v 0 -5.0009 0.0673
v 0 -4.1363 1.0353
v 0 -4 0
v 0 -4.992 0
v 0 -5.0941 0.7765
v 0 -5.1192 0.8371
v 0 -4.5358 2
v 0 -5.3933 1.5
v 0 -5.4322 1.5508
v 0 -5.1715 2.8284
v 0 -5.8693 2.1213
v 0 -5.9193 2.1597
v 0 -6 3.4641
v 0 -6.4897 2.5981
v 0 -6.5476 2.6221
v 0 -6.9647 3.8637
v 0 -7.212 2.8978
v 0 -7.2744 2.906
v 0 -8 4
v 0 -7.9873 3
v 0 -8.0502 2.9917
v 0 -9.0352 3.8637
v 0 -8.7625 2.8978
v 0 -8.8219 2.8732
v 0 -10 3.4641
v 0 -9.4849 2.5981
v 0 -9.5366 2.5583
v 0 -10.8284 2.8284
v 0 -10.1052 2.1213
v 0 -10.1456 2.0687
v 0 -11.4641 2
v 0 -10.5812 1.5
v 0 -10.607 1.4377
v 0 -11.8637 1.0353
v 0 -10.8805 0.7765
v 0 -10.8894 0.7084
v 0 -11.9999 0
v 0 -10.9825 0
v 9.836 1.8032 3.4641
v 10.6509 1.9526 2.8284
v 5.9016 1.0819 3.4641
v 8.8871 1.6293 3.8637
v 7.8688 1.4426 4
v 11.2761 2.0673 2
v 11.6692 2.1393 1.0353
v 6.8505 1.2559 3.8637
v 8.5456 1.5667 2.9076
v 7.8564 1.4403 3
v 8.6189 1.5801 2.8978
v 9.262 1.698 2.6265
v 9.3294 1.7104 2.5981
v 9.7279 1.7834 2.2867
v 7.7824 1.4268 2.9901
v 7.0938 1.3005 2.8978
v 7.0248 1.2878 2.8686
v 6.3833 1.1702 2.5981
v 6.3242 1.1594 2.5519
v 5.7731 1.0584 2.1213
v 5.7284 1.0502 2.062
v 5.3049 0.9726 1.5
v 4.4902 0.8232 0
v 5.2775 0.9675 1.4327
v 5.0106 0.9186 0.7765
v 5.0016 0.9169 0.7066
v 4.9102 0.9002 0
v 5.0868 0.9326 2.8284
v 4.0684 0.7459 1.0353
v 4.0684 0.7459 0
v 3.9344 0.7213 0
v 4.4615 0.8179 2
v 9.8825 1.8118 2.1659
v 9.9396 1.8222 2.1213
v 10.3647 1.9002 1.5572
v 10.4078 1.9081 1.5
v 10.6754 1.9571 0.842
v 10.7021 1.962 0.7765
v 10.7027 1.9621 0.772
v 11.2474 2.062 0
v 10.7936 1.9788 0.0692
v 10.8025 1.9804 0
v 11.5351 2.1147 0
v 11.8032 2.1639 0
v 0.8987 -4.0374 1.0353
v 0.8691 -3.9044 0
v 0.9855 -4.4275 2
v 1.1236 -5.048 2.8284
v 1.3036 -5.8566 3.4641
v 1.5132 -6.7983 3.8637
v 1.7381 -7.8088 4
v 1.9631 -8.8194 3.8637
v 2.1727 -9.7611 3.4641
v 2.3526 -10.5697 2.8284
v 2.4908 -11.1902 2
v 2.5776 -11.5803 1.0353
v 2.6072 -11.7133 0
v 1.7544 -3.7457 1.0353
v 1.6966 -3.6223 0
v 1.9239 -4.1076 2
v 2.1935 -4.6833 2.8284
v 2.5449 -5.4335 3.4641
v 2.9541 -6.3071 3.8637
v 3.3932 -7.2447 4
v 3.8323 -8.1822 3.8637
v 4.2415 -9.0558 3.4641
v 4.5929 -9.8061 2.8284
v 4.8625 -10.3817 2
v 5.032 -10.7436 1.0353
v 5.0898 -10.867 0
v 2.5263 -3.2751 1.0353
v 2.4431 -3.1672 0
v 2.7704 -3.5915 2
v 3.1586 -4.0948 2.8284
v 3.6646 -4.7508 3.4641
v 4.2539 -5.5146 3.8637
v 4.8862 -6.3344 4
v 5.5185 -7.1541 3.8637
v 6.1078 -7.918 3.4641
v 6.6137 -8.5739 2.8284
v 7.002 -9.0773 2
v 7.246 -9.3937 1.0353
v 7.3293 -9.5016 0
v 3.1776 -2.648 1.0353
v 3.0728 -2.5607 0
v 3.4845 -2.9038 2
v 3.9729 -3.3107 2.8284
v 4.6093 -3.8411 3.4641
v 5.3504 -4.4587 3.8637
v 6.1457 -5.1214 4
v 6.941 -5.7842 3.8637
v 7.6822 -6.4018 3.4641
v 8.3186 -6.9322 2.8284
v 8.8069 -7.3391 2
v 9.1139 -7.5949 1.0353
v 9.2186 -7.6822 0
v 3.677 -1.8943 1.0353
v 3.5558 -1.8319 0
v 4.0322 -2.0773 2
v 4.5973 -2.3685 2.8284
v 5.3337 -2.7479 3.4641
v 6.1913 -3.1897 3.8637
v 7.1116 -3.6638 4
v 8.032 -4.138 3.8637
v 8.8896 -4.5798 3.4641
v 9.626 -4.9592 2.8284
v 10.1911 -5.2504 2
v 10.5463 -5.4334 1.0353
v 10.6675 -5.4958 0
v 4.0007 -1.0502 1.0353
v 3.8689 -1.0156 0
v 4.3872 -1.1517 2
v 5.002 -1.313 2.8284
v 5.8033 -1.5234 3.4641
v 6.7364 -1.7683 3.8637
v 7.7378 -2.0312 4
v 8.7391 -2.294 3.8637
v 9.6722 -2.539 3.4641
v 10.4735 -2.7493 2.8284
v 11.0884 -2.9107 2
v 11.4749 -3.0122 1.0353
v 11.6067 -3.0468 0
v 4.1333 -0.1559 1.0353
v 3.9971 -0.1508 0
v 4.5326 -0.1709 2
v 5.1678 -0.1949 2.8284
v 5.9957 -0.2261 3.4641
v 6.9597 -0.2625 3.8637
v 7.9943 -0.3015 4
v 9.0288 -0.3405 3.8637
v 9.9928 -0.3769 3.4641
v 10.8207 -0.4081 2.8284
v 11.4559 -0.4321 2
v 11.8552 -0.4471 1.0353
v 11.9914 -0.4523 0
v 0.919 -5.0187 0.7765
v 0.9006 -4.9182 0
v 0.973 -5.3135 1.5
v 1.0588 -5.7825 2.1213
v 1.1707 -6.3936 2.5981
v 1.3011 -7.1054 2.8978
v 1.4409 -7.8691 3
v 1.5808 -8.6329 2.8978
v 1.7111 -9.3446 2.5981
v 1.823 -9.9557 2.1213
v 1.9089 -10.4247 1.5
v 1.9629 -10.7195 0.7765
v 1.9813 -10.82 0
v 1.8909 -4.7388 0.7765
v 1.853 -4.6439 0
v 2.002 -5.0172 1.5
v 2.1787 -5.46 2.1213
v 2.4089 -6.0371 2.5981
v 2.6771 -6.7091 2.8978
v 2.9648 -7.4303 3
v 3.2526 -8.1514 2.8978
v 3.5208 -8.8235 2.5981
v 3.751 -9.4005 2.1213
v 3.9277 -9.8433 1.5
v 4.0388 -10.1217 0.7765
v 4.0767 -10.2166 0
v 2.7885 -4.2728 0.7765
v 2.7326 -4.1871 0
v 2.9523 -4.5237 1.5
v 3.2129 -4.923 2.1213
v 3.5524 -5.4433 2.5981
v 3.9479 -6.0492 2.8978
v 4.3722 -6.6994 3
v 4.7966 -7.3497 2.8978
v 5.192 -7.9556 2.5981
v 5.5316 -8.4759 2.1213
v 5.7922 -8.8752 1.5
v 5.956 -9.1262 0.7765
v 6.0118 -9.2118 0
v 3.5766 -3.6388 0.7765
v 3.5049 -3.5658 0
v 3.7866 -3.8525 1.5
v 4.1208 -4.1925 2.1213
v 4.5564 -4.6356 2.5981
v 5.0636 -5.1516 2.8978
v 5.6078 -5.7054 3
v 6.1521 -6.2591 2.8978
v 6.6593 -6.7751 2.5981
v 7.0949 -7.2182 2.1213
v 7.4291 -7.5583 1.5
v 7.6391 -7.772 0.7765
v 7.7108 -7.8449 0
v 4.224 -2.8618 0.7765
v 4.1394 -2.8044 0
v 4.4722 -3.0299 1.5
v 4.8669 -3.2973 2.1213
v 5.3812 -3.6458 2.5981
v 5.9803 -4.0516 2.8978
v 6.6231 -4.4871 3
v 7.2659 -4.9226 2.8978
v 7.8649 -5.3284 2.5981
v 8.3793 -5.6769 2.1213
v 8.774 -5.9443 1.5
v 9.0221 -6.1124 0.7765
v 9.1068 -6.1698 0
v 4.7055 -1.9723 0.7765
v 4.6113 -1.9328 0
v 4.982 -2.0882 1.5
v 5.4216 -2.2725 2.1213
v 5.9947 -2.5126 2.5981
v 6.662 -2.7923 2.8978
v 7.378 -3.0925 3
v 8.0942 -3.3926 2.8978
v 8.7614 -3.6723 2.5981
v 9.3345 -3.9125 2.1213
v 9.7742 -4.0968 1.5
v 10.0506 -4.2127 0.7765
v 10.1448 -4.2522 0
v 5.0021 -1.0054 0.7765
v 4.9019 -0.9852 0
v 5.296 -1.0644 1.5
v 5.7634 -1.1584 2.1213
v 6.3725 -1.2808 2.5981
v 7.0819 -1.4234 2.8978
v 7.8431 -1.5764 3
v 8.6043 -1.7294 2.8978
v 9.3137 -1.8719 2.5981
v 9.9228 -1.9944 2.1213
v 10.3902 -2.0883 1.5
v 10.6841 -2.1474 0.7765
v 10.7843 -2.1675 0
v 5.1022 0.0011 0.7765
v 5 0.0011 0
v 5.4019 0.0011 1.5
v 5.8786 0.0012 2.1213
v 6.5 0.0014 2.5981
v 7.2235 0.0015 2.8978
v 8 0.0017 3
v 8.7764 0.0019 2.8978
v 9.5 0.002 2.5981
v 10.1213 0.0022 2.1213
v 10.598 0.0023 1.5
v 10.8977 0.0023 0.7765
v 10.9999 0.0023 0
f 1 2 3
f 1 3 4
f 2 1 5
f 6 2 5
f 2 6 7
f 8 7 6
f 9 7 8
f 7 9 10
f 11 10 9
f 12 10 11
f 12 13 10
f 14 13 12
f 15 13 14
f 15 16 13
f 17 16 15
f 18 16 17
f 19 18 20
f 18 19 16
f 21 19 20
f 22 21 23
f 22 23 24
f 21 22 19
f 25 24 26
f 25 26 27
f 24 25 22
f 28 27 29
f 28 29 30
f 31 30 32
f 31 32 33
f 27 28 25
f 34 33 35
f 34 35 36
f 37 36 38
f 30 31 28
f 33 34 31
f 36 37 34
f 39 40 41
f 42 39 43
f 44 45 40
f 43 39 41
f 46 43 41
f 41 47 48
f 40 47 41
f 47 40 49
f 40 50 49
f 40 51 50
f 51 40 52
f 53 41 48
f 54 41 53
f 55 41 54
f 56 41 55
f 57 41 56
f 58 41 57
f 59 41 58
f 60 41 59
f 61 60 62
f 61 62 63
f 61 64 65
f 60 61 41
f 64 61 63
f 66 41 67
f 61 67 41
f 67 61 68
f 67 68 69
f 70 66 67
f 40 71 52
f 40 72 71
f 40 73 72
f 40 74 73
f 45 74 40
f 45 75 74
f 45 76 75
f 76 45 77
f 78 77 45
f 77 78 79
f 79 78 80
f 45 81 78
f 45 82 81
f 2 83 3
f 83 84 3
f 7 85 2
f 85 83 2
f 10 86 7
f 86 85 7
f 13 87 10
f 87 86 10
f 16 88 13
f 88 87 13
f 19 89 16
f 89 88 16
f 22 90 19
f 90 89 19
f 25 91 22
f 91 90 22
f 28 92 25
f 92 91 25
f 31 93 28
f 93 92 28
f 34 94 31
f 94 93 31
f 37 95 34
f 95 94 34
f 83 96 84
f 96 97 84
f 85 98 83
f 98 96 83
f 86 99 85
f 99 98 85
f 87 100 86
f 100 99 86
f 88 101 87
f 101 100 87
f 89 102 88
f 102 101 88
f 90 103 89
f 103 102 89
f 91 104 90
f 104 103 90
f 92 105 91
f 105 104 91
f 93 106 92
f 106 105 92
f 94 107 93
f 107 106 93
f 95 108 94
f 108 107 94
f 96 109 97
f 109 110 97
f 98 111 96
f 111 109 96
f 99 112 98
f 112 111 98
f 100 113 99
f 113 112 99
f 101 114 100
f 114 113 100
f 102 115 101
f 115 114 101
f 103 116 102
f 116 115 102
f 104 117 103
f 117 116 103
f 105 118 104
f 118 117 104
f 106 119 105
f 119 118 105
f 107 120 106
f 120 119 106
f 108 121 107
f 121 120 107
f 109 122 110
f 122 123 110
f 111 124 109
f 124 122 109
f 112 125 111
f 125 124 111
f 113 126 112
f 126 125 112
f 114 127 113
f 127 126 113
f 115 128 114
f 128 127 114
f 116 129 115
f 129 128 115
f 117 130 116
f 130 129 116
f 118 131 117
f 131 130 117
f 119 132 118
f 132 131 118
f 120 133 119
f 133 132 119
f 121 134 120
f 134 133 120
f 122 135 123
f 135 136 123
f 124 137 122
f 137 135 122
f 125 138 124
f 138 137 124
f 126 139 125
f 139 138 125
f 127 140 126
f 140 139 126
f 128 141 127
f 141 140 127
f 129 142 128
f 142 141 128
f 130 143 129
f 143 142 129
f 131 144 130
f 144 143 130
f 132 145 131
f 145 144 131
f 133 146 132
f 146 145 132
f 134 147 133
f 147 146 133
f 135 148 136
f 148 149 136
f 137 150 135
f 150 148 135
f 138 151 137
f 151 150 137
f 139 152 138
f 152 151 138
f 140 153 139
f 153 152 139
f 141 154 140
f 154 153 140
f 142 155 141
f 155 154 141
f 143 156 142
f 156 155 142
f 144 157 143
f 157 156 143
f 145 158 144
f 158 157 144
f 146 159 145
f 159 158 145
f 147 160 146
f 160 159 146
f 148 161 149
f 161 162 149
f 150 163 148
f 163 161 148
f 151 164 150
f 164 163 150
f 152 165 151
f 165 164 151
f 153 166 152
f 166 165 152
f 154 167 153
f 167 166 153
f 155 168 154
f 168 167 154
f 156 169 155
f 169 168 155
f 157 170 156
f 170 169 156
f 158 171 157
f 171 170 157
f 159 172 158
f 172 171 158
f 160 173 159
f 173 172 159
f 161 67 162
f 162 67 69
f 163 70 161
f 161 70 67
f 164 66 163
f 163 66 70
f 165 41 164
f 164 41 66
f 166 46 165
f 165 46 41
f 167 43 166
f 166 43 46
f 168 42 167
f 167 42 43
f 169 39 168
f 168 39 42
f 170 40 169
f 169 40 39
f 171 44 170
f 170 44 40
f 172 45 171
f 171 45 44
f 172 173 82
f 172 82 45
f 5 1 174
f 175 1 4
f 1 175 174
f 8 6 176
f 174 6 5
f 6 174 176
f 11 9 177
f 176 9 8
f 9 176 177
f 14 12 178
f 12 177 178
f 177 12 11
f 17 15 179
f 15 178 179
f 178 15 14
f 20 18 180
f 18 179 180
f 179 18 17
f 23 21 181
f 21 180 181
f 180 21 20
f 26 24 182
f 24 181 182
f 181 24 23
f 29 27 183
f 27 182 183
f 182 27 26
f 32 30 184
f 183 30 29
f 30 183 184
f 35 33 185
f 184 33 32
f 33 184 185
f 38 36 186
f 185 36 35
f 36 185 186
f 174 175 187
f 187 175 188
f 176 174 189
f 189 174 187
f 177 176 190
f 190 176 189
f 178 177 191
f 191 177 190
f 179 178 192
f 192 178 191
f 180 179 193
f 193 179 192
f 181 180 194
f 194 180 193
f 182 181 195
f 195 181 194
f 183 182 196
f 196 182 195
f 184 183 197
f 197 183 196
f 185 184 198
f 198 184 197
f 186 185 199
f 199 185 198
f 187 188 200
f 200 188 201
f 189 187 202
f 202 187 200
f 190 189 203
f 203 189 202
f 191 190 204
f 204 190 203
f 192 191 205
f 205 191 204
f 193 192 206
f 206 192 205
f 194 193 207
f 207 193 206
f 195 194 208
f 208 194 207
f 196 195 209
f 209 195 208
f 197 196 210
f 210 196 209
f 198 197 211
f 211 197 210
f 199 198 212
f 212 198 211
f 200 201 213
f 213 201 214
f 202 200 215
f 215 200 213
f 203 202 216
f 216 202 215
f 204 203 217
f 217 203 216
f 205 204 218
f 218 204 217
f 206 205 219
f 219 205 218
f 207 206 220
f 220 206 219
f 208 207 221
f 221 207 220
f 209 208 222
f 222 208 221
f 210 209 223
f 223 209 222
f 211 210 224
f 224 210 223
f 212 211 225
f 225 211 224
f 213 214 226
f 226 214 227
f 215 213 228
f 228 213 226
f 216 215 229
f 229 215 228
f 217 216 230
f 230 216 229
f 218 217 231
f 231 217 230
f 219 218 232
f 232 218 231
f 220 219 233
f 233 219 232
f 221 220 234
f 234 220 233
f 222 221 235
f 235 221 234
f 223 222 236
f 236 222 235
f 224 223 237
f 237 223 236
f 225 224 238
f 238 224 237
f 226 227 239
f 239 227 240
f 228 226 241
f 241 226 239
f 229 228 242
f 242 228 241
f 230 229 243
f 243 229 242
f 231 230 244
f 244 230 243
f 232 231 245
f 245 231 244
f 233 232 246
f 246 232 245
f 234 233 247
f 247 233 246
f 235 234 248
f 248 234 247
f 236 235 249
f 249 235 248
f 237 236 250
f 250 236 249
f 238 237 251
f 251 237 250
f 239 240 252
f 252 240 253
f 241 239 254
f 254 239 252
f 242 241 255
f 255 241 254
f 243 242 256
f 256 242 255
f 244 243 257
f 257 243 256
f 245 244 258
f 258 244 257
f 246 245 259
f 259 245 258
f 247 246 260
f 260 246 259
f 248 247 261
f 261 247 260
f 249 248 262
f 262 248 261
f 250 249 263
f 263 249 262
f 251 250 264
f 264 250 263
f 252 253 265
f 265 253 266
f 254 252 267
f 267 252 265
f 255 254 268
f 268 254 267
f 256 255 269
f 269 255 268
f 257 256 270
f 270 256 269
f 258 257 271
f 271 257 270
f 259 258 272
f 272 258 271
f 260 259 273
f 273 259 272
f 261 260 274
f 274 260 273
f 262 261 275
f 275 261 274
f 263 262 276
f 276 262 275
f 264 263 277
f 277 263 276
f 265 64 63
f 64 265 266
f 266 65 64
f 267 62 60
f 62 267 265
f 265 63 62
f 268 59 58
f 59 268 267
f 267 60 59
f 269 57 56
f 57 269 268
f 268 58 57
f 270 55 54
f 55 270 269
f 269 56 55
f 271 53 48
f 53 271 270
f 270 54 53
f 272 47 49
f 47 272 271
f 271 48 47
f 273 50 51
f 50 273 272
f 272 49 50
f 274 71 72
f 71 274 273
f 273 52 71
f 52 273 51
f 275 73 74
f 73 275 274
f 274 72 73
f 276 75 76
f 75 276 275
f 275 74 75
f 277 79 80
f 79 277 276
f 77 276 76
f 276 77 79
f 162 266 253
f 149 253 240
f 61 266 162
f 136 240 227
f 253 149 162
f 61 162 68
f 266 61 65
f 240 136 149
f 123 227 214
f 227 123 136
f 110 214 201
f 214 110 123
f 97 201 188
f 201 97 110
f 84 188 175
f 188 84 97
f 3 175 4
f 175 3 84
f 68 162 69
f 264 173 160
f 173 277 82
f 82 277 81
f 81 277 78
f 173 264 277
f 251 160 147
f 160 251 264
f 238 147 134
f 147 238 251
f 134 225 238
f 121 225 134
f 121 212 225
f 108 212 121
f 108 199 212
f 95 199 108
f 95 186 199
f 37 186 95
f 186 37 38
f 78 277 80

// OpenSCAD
// file: ../build_environments.scad
// build_environments.scad: modules to build level sections
//

module pool(diameter=10.0, wall_height=2.0, step_width=3.0, connections=[])
{
    difference() {
        union() {
        difference() {
            cylinder(h=0.5,r1=diameter+step_width,r2=diameter+step_width,$fn=48);
            translate([0,0,-0.1])
                cylinder(h=0.7,r1=diameter,r2=diameter,$fn=48);
        }
        difference() {
            cylinder(h=wall_height,r1=diameter+step_width+1.0,r2=diameter+step_width+1.0,$fn=48);
            translate([0,0,-0.1])
                cylinder(h=wall_height+0.2,r1=diameter+step_width,r2=diameter+step_width,$fn=48);
        }
        }
    
        for (c = connections)
        {
            rotate([0,90,0]) {
                angle = atan2(c[1],c[0]);
                rotate([-angle,0,0]) {
                    cylinder(h=diameter+5.0,r1=c[2],r2=c[2],$fn=48);
                }
            }
        }
    }
}

module straight(length=10.0, width=2.0, dy1=0.0, dy2=0.0, dz=0.0)
{
    dims = [0, 0, 0, 0, 0, (dz/length)];
    matrix = [
        [ 1, dims[0], dims[1], 0 ],
        [ dims[2], 1, dims[4], 0 ],
        [ dims[5], dims[3], 1, 0 ],
        [ 0, 0, 0, 1 ]
    ];
    multmatrix(matrix)
    difference() {
        translate([dy1,0,0])
        union() {
            rotate([0,90,0]) {
                difference() {
                    cylinder(h=(length-dy1-dy2),r1=width+1.0,r2=width+1.0,$fn=24);
                    translate([0,0,-0.1])
                        cylinder(h=(length-dy1-dy2+0.2),r1=width,r2=width,$fn=24);
                }
                difference() {
                    cylinder(h=1.0,r1=width+2.0,r2=width+2.0,$fn=24);
                    translate([0,0,-0.1])
                        cylinder(h=1.2,r1=width,r2=width,$fn=24);
                }
                translate([0,0,(length-dy1-dy2)-1.0]) {
                    difference() {
                        cylinder(h=1.0,r1=width+2.0,r2=width+2.0,$fn=24);
                        translate([0,0,-0.1])
                            cylinder(h=1.2,r1=width,r2=width,$fn=24);
                    }
                }
            }
        }
        translate([0,0,-(2*width+4.0)/2])
            cube([3*length,3*length,2*width+4.0],center=true);
    }
}

module curve(p0=[0,0], center=[0,0], dir=1, angle=0.0, width=2.0)
{
    radius = sqrt((p0[0]-center[0])*(p0[0]-center[0]) + (p0[1]-center[1])*(p0[1]-center[1]));
    if (dir == 0) {
        difference() {
            rotate([0,0,-90])
            difference() {
                rotate_extrude(angle = angle, convexity = 10, $fn=32)
                    translate([radius, 0, 0])
                        circle(r = width+1.0,$fn=24);
                rotate([0,0,-1.0])
                    rotate_extrude(angle = angle+2.0, convexity = 10, $fn=32)
                        translate([radius, 0, 0])
                            circle(r = width,$fn=24);
            }
            translate([0,0,-(2*width+4.0)/2])
                cube([5*radius,5*radius,2*width+4.0],center=true);
        }
    }
    else {
        difference() {
            rotate([0,0,90])
            difference() {
                rotate_extrude(angle = -angle, convexity = 10, $fn=32)
                    translate([radius, 0, 0])
                        circle(r = width+1.0,$fn=24);
                rotate([0,0,1.0])
                    rotate_extrude(angle = -angle-2.0, convexity = 10, $fn=32)
                        translate([radius, 0, 0])
                            circle(r = width,$fn=24);
            }
            translate([0,0,-(2*width+4.0)/2])
                cube([5*radius,5*radius,2*width+4.0],center=true);
        }
    }

}

// test pool
//pool(diameter=12.0000, wall_height=3.0000, step_width=3.0000, connections=[[0.0000,-26.0000,2.0000], [23.6074,0.0000,2.0000]]);

// test straight, slope
//straight(length=26.0000, width=2.0000, dy1=11.8322, dy2=6.7082, dz=0.0000);
//straight(length=29.1549, width=12.0000, dy1=0.0000, dy2=0.0000, dz=-15.0000);

// test curve
//curve(p0=[23.6074, 0.0000], center=[23.6074, 5.0000], dir=0, angle=60.1011, width=2.0000);
//curve(p0=[33.6426, 12.4219], center=[37.9771, 9.9295], dir=1, angle=120.4627, width=2.0000);
// main file
use <../build_environments.scad>;
curve(p0=[-51.0961, 80.7958], center=[-43.2585, 82.3993], dir=0, angle=100.3887, width=3.0000);
